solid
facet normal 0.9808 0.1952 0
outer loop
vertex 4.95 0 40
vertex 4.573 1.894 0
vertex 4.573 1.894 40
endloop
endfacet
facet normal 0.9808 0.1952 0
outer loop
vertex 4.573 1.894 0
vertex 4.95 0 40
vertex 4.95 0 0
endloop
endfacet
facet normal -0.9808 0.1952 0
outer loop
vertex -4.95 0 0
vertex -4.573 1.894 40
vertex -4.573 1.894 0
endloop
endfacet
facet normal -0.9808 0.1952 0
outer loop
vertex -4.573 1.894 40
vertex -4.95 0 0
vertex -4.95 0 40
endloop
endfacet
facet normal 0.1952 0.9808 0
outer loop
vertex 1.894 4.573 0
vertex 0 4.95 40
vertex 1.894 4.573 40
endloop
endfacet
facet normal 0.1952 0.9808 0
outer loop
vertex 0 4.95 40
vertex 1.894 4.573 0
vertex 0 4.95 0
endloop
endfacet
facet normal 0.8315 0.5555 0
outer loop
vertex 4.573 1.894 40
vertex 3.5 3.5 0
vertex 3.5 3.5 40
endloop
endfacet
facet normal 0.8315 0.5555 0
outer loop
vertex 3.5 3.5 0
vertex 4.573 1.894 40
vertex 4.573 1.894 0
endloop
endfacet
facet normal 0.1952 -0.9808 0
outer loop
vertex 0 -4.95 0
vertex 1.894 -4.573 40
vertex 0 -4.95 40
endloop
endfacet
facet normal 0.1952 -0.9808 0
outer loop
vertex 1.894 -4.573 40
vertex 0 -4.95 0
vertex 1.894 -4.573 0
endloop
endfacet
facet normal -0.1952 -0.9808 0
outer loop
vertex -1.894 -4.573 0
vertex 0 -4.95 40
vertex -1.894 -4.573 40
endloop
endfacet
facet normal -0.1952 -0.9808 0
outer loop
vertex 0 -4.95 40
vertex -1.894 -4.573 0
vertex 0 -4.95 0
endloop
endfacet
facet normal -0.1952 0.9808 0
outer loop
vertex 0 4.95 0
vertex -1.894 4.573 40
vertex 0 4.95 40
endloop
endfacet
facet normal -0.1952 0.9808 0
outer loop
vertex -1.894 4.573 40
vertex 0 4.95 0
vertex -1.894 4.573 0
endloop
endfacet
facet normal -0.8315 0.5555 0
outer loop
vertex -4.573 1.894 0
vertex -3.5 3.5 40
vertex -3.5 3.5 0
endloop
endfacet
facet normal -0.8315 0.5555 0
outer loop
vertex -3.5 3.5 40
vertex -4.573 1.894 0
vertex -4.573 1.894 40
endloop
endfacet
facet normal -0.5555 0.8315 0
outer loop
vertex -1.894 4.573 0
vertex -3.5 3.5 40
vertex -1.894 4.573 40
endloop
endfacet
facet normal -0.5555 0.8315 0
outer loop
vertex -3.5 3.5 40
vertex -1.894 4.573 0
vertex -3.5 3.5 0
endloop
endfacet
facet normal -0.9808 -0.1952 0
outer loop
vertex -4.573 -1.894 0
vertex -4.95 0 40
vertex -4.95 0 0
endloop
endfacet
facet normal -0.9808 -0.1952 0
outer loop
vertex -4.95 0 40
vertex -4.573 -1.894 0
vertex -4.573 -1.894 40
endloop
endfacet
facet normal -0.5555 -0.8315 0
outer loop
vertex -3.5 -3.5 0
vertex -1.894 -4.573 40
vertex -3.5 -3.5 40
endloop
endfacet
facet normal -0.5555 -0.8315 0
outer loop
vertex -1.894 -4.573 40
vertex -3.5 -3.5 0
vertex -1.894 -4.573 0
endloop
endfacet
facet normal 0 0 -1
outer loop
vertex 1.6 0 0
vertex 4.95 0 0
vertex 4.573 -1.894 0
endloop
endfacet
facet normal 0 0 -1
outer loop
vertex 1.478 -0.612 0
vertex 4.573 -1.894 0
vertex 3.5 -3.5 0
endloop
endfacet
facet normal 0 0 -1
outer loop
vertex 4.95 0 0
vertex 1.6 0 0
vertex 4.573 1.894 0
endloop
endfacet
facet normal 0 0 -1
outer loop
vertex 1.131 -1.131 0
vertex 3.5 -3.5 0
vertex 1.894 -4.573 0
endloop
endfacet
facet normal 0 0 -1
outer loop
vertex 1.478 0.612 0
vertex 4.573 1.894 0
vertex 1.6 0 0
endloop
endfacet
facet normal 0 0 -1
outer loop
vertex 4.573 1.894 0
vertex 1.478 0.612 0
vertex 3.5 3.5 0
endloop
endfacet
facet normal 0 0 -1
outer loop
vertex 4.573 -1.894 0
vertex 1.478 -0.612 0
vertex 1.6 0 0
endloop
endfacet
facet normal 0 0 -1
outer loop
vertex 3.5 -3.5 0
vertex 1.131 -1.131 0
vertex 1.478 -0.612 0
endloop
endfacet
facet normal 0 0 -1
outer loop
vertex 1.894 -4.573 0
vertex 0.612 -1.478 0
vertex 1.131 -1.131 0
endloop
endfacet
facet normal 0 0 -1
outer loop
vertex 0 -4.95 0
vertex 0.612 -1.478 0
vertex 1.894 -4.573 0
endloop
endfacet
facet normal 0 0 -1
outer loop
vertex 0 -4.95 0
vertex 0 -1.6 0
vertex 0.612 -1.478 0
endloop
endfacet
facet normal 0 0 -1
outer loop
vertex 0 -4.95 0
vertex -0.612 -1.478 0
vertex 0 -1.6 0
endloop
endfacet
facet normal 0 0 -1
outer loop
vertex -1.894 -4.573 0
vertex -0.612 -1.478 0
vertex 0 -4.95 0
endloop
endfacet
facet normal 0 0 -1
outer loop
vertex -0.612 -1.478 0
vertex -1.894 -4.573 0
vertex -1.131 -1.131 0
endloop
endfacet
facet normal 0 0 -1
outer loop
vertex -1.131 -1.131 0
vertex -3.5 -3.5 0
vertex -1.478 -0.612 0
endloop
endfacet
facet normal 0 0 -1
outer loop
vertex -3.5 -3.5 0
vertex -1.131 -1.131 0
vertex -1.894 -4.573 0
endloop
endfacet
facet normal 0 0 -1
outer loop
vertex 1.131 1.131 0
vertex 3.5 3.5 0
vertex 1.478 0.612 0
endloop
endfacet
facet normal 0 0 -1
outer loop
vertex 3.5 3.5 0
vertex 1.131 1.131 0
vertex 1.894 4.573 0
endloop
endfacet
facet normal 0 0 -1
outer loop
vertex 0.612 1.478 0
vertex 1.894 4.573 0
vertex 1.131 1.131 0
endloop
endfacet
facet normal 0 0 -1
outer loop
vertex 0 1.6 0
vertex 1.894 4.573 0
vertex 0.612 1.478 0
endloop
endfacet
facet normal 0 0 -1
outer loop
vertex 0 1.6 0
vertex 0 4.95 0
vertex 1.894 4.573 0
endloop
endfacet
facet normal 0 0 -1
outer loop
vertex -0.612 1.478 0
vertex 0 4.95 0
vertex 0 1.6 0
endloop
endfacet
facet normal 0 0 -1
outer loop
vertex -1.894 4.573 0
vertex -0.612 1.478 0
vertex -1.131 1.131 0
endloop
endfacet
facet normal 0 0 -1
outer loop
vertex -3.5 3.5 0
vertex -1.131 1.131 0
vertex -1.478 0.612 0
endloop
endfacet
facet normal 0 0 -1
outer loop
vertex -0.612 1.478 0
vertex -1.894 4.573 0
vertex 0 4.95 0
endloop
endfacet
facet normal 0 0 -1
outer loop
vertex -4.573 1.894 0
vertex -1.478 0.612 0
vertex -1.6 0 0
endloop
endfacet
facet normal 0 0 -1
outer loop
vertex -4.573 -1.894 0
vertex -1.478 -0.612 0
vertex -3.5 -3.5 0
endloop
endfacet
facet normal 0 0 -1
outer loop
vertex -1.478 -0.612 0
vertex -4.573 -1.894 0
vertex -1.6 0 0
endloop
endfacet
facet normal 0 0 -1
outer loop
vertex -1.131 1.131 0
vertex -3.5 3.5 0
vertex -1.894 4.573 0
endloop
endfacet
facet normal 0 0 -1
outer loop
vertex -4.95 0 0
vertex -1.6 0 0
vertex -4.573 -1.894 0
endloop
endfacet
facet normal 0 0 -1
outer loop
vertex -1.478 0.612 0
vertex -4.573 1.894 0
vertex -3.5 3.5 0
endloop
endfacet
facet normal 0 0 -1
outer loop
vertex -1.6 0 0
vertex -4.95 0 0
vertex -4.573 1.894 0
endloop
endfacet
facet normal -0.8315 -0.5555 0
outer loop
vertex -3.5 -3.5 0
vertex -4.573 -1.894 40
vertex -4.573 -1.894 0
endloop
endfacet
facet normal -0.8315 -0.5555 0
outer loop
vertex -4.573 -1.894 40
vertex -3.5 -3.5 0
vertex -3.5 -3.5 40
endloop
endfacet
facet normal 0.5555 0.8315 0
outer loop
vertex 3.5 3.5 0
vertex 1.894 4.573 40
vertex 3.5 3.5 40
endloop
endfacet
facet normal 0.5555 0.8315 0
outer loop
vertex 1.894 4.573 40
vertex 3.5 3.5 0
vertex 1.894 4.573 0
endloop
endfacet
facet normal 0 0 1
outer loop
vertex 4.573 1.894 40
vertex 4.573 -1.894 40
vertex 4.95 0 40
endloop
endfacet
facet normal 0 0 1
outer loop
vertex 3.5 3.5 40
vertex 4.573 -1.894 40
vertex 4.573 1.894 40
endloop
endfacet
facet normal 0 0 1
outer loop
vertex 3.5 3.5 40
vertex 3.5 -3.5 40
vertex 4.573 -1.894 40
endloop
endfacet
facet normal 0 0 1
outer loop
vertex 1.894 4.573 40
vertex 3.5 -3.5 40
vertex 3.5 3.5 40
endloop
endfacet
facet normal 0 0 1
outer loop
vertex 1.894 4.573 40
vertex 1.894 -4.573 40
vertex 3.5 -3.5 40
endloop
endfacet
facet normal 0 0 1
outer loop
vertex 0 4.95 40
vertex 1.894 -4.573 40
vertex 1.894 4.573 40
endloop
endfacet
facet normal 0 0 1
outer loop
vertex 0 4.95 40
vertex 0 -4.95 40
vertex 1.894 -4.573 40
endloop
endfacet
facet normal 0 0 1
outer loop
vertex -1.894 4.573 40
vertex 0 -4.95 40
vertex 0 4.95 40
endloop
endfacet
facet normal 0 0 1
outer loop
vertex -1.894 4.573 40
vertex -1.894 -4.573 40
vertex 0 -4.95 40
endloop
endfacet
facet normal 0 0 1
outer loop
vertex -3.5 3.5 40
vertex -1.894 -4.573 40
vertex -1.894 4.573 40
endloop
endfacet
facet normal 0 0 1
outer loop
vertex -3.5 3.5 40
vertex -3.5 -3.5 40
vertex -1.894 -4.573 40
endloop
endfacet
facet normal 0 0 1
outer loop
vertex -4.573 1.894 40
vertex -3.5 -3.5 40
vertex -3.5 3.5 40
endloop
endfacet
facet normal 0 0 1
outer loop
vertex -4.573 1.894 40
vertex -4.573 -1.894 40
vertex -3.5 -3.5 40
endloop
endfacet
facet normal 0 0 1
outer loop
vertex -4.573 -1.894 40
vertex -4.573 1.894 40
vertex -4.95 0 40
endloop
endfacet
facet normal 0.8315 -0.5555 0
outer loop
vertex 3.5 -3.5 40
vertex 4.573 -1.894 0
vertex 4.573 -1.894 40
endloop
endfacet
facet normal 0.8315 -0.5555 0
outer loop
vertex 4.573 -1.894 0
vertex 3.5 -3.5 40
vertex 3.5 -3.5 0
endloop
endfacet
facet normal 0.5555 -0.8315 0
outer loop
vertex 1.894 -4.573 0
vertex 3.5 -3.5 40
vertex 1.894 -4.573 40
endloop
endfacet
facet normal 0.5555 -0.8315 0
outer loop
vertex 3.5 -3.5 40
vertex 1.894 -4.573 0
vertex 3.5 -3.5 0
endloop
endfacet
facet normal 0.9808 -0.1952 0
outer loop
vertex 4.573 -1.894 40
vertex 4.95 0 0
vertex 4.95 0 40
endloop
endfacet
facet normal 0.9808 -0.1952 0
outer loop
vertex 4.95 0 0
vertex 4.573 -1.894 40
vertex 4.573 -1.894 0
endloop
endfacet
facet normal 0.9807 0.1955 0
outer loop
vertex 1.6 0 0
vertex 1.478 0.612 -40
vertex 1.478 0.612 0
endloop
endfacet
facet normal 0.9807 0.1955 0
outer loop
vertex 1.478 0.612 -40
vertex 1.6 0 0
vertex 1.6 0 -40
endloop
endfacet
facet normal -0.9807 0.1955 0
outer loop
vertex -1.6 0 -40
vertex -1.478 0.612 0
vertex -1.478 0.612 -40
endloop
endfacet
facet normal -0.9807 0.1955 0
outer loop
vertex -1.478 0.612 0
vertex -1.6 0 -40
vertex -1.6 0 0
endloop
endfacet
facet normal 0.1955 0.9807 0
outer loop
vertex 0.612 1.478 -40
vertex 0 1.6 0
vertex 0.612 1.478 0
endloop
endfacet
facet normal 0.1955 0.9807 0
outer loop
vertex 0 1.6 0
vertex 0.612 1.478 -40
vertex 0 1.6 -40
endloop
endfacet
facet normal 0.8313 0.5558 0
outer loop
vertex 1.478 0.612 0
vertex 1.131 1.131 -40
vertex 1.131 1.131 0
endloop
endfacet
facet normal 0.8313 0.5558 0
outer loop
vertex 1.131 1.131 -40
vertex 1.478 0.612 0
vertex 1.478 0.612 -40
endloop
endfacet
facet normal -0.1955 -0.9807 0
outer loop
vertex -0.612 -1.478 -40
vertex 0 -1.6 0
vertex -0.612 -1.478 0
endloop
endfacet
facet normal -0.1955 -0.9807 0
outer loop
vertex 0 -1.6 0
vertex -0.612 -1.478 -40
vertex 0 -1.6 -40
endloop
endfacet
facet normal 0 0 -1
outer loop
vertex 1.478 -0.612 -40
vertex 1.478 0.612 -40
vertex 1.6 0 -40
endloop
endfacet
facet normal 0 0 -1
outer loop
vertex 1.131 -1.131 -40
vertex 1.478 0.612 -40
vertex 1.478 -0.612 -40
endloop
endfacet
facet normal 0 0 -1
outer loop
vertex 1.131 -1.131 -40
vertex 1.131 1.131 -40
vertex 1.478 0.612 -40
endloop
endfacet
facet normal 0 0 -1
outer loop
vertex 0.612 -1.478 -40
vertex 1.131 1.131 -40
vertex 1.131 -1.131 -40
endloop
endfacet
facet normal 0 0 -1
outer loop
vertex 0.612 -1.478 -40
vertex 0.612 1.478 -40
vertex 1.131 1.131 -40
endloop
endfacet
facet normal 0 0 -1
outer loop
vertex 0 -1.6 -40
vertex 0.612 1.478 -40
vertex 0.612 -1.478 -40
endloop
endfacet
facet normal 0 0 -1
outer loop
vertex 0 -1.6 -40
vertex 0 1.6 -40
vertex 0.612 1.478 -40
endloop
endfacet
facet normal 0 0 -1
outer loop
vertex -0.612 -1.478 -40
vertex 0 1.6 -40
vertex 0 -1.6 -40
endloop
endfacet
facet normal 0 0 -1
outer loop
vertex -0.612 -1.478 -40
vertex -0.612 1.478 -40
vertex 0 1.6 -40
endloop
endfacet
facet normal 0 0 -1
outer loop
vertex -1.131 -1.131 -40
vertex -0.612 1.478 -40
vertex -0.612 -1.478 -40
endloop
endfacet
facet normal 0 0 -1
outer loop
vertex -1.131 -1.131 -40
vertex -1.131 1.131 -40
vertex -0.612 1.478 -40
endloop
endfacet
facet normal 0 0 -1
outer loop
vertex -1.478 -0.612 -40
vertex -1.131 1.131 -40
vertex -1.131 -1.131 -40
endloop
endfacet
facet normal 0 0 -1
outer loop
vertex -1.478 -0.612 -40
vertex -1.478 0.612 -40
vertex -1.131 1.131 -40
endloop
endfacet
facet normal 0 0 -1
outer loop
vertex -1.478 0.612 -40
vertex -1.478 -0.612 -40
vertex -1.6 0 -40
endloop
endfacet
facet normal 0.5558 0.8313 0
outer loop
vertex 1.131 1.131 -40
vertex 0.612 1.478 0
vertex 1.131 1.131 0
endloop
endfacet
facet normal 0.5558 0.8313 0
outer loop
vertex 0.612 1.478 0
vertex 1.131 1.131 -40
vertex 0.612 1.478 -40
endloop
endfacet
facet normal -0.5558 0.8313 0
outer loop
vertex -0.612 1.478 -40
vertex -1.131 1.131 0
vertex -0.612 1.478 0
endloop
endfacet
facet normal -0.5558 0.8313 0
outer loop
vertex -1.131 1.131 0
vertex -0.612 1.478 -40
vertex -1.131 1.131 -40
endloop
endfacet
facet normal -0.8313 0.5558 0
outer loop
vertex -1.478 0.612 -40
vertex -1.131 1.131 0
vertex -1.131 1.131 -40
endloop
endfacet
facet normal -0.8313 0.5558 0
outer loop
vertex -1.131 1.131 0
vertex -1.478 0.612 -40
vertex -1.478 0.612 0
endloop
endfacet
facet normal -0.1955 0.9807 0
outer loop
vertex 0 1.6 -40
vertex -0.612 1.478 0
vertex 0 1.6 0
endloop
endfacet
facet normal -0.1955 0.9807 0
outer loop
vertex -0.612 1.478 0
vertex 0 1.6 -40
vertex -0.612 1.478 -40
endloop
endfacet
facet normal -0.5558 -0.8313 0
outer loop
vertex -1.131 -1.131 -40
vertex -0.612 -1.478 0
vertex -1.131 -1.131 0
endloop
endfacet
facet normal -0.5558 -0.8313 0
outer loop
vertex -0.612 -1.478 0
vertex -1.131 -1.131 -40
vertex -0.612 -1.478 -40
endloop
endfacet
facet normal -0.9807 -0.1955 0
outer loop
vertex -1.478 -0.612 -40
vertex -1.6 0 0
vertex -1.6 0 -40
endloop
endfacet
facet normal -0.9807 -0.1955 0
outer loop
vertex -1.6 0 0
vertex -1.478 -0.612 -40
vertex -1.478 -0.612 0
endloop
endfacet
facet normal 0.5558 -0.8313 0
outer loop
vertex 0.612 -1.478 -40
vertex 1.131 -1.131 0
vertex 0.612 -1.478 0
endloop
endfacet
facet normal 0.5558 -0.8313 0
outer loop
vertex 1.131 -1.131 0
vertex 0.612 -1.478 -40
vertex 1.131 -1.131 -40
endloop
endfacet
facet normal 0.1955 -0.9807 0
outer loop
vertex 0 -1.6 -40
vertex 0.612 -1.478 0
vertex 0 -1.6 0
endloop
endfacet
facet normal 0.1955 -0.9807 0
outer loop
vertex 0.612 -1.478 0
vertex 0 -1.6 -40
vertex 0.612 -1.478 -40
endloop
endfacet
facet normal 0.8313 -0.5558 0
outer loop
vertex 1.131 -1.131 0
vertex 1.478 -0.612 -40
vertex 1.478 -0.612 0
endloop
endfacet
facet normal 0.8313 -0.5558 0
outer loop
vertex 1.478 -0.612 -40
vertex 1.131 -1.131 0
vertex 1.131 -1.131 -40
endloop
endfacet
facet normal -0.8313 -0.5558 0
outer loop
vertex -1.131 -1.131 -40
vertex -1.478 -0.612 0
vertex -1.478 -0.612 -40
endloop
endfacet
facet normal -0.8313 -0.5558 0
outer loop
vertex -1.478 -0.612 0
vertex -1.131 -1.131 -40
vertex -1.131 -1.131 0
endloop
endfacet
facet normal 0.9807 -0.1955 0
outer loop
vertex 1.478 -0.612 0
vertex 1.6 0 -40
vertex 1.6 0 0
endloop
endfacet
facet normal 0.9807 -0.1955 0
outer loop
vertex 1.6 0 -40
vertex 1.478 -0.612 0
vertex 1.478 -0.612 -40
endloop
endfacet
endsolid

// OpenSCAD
// m3 bolt negative space

$fn=16;

shaft_radius = 2.9/2;
head_radius = 5.9/2;

m3_bolt_space();

module m3_bolt_space(head_extra=2, shaft_extra=.15, head_height=40, length=40) {
    cylinder(h=head_height, r=head_radius + head_extra);

    translate([0, 0, -length])
        cylinder(h=length, r=shaft_radius + shaft_extra);
}
